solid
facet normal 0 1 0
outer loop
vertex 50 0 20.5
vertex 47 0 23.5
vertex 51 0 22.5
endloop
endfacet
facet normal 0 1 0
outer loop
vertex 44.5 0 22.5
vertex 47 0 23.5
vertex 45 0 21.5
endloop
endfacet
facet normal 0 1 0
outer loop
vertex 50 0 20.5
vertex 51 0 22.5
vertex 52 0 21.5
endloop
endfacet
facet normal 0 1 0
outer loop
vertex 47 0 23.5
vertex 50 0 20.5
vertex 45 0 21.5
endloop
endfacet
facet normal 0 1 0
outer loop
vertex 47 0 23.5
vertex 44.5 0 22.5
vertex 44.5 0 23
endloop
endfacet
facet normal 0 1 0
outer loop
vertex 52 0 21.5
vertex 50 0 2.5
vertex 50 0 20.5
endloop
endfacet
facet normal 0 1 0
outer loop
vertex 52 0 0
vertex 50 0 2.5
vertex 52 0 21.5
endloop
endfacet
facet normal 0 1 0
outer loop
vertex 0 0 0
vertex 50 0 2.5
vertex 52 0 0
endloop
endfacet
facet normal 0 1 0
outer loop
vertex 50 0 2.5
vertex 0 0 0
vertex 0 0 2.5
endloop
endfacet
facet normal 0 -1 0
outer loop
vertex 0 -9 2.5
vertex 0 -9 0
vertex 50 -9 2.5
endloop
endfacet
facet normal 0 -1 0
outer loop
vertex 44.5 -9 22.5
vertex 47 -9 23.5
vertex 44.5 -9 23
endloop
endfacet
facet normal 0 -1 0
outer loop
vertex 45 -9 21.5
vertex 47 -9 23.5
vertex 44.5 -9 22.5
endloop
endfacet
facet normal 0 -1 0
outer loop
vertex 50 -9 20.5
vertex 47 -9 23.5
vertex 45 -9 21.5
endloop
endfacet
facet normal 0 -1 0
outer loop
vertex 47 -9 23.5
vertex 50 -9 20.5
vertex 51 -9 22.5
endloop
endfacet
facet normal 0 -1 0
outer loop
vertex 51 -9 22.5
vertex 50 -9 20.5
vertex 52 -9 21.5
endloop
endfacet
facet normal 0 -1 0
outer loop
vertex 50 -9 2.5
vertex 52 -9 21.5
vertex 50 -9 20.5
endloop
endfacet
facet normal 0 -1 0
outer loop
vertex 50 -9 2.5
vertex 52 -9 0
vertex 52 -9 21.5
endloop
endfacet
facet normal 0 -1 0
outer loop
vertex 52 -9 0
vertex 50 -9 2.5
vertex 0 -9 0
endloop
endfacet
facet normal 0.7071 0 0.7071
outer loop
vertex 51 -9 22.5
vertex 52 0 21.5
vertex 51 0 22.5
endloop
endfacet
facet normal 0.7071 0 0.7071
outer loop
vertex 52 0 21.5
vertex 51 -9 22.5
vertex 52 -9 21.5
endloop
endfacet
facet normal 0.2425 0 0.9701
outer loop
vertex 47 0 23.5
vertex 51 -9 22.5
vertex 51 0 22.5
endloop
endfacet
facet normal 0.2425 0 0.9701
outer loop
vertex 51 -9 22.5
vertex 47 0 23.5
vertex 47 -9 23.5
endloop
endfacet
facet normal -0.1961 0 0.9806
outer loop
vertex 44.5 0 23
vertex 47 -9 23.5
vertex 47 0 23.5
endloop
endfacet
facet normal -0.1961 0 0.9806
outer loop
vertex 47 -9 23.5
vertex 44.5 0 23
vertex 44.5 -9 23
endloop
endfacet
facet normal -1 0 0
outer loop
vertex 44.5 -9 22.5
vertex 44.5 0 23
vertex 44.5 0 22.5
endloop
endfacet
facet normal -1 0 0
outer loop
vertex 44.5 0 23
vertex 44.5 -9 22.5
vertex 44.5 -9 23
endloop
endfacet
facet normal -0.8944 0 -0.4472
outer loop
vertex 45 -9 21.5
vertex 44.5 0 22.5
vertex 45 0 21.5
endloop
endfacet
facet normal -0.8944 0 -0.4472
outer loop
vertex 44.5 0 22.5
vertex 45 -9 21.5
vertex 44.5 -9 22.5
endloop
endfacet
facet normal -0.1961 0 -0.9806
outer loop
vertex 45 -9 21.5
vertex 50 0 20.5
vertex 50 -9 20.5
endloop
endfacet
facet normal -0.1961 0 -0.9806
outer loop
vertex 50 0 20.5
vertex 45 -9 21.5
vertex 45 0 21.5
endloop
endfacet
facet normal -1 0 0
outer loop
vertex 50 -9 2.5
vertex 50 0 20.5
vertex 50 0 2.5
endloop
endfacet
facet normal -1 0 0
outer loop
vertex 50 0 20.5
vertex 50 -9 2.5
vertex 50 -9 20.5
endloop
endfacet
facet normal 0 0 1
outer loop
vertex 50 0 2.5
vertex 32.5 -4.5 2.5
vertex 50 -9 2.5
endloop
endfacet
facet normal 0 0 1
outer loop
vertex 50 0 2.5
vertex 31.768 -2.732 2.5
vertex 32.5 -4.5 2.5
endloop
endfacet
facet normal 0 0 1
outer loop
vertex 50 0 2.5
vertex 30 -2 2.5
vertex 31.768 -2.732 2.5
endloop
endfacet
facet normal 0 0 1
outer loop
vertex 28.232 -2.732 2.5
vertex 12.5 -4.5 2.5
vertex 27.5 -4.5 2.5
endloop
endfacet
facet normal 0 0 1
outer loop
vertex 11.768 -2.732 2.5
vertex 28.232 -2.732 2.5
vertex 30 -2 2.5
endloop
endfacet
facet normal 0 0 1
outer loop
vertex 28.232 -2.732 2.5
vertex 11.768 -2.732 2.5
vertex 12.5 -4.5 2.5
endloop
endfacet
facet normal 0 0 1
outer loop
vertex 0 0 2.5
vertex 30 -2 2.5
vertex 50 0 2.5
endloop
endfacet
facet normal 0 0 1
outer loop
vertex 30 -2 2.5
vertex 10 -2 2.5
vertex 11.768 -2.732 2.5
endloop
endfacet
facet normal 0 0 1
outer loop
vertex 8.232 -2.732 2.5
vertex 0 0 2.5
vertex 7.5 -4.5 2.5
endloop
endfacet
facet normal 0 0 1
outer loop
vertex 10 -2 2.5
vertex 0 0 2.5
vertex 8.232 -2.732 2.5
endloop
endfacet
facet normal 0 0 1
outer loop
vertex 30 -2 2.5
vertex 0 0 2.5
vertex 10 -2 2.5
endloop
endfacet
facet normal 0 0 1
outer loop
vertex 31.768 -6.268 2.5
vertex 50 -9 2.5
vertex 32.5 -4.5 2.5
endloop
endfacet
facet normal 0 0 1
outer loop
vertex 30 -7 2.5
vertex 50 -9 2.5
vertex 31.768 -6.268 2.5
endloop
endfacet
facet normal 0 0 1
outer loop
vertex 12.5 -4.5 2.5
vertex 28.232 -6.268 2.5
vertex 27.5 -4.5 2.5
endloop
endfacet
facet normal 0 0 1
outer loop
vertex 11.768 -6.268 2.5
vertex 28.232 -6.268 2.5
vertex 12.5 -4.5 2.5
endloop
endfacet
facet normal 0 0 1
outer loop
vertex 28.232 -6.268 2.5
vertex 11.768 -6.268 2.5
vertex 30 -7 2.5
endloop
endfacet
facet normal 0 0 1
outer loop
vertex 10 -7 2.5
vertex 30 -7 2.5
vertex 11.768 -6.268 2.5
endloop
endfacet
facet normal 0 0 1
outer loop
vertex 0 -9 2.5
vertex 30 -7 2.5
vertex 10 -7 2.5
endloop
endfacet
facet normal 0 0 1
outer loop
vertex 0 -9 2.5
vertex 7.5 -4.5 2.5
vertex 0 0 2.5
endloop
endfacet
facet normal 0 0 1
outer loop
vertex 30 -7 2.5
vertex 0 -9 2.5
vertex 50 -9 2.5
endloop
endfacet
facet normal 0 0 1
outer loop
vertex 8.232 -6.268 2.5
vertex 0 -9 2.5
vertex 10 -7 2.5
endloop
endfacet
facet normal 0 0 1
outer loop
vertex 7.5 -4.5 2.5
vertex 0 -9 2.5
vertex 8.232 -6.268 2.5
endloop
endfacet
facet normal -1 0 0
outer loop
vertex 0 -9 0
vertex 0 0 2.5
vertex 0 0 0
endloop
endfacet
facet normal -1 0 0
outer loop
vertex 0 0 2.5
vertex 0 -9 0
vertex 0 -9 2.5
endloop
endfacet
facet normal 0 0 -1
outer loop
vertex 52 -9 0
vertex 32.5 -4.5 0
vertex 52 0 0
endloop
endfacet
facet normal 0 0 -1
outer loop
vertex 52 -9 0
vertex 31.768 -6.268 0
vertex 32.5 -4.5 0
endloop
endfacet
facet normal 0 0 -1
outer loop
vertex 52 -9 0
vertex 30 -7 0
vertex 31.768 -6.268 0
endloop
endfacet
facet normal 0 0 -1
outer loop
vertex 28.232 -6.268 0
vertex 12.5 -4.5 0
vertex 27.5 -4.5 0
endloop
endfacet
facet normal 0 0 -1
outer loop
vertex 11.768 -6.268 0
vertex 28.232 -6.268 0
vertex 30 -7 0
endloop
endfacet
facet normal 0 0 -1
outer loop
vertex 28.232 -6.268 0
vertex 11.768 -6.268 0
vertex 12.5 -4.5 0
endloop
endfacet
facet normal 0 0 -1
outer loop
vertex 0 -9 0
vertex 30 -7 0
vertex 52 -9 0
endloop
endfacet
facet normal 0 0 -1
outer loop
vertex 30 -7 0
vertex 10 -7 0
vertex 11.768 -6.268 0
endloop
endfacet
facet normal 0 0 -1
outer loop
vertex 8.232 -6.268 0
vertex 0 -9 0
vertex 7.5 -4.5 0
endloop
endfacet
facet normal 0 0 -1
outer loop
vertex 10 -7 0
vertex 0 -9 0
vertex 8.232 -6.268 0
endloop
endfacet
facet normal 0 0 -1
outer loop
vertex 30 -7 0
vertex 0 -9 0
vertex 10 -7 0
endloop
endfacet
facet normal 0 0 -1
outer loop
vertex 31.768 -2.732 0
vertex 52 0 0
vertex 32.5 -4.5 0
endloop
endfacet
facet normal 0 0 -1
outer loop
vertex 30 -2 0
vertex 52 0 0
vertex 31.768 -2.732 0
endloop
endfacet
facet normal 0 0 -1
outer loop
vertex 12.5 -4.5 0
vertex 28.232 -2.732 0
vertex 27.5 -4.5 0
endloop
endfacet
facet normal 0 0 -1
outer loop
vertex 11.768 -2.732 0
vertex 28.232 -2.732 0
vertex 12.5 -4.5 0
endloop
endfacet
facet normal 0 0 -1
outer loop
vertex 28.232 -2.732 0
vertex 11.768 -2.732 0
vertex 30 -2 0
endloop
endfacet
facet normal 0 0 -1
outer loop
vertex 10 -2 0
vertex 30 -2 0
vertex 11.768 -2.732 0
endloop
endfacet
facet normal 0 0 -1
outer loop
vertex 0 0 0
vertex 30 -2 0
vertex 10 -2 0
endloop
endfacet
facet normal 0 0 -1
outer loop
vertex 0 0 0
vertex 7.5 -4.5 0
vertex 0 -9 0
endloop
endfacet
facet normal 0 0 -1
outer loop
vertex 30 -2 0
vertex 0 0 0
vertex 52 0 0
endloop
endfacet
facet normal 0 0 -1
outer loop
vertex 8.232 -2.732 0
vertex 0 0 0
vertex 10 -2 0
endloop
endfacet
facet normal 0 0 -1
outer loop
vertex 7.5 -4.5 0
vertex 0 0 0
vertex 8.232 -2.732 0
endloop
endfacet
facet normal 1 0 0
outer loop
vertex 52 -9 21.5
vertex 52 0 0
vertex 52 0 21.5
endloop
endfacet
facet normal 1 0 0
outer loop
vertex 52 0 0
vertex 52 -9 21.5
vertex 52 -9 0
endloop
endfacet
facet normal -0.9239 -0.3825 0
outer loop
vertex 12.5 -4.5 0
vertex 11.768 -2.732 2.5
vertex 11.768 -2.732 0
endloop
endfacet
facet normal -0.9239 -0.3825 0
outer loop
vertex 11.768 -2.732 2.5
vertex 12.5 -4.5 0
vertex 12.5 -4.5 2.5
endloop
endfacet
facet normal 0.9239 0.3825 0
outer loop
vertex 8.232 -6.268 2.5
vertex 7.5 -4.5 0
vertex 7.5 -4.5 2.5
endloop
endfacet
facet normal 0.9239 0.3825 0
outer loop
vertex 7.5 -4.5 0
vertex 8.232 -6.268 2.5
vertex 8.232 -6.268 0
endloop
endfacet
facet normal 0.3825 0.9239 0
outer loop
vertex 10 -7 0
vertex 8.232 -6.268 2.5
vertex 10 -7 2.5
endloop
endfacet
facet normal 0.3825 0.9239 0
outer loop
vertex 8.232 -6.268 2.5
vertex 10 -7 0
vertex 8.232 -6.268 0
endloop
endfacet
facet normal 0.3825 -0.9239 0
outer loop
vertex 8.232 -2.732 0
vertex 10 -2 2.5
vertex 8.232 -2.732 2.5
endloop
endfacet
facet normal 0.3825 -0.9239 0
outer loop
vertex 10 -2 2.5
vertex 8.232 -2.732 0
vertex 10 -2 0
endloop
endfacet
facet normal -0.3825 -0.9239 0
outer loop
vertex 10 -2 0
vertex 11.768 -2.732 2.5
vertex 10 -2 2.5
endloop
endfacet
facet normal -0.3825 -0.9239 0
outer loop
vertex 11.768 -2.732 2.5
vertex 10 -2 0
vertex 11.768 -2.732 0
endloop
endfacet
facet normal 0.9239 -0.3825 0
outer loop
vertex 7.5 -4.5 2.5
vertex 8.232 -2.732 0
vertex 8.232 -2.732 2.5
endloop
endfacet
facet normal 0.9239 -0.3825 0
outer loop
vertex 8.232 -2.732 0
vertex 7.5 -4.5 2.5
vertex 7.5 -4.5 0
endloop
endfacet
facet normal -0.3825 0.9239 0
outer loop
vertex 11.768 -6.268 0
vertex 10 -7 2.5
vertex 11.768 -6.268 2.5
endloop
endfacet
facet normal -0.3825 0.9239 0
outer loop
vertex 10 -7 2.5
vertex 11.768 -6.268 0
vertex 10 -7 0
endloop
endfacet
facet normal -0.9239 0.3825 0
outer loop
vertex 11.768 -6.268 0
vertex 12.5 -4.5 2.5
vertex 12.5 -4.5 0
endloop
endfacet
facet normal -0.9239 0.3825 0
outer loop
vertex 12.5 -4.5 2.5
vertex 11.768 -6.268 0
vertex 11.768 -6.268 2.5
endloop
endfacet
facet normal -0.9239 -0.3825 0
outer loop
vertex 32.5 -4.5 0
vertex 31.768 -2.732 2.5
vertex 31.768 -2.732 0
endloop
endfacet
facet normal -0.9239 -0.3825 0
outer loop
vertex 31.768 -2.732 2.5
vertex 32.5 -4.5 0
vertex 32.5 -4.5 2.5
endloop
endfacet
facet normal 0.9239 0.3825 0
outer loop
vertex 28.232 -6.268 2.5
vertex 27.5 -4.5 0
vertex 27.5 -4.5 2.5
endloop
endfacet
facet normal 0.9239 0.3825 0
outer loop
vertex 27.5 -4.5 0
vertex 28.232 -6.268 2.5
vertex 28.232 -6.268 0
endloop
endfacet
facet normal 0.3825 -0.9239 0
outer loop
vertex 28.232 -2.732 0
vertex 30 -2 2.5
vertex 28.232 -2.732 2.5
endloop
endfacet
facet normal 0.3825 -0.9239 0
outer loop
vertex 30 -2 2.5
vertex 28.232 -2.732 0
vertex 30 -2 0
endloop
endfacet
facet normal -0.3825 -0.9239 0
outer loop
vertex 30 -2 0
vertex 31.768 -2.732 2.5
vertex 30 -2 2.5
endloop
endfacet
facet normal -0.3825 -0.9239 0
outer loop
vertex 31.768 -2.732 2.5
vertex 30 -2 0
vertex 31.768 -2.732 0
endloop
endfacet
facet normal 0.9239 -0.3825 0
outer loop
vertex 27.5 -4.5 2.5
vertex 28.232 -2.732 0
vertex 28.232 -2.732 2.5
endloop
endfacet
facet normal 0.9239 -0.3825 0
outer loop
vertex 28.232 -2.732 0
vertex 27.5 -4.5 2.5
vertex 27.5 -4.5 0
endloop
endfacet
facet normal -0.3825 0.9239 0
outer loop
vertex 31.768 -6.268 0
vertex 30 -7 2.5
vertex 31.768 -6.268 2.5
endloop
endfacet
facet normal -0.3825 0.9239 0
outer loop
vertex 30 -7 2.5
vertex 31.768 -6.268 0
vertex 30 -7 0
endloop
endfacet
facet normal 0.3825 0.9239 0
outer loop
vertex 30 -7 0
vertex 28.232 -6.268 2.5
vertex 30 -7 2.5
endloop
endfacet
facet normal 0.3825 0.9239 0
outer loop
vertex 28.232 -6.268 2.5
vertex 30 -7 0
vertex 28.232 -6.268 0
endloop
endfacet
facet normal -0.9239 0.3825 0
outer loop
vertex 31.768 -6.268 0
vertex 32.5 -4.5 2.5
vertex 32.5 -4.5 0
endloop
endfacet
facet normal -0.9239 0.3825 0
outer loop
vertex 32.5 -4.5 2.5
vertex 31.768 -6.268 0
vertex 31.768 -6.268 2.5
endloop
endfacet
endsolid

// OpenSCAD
difference() {
    rotate([90,0,0])
    linear_extrude(9)
    polygon([[0,0],[0,2.5],[50,2.5],[50,20.5],[45,21.5],[44.5,22.5],[44.5,23],[47,23.5],[51,22.5],[52,21.5],[52,0]]);    

    
    translate([10,-4.5,-1])
    cylinder(r=2.5,h=4);

    translate([30,-4.5,-1])
    cylinder(r=2.5,h=4);
    
    
}
